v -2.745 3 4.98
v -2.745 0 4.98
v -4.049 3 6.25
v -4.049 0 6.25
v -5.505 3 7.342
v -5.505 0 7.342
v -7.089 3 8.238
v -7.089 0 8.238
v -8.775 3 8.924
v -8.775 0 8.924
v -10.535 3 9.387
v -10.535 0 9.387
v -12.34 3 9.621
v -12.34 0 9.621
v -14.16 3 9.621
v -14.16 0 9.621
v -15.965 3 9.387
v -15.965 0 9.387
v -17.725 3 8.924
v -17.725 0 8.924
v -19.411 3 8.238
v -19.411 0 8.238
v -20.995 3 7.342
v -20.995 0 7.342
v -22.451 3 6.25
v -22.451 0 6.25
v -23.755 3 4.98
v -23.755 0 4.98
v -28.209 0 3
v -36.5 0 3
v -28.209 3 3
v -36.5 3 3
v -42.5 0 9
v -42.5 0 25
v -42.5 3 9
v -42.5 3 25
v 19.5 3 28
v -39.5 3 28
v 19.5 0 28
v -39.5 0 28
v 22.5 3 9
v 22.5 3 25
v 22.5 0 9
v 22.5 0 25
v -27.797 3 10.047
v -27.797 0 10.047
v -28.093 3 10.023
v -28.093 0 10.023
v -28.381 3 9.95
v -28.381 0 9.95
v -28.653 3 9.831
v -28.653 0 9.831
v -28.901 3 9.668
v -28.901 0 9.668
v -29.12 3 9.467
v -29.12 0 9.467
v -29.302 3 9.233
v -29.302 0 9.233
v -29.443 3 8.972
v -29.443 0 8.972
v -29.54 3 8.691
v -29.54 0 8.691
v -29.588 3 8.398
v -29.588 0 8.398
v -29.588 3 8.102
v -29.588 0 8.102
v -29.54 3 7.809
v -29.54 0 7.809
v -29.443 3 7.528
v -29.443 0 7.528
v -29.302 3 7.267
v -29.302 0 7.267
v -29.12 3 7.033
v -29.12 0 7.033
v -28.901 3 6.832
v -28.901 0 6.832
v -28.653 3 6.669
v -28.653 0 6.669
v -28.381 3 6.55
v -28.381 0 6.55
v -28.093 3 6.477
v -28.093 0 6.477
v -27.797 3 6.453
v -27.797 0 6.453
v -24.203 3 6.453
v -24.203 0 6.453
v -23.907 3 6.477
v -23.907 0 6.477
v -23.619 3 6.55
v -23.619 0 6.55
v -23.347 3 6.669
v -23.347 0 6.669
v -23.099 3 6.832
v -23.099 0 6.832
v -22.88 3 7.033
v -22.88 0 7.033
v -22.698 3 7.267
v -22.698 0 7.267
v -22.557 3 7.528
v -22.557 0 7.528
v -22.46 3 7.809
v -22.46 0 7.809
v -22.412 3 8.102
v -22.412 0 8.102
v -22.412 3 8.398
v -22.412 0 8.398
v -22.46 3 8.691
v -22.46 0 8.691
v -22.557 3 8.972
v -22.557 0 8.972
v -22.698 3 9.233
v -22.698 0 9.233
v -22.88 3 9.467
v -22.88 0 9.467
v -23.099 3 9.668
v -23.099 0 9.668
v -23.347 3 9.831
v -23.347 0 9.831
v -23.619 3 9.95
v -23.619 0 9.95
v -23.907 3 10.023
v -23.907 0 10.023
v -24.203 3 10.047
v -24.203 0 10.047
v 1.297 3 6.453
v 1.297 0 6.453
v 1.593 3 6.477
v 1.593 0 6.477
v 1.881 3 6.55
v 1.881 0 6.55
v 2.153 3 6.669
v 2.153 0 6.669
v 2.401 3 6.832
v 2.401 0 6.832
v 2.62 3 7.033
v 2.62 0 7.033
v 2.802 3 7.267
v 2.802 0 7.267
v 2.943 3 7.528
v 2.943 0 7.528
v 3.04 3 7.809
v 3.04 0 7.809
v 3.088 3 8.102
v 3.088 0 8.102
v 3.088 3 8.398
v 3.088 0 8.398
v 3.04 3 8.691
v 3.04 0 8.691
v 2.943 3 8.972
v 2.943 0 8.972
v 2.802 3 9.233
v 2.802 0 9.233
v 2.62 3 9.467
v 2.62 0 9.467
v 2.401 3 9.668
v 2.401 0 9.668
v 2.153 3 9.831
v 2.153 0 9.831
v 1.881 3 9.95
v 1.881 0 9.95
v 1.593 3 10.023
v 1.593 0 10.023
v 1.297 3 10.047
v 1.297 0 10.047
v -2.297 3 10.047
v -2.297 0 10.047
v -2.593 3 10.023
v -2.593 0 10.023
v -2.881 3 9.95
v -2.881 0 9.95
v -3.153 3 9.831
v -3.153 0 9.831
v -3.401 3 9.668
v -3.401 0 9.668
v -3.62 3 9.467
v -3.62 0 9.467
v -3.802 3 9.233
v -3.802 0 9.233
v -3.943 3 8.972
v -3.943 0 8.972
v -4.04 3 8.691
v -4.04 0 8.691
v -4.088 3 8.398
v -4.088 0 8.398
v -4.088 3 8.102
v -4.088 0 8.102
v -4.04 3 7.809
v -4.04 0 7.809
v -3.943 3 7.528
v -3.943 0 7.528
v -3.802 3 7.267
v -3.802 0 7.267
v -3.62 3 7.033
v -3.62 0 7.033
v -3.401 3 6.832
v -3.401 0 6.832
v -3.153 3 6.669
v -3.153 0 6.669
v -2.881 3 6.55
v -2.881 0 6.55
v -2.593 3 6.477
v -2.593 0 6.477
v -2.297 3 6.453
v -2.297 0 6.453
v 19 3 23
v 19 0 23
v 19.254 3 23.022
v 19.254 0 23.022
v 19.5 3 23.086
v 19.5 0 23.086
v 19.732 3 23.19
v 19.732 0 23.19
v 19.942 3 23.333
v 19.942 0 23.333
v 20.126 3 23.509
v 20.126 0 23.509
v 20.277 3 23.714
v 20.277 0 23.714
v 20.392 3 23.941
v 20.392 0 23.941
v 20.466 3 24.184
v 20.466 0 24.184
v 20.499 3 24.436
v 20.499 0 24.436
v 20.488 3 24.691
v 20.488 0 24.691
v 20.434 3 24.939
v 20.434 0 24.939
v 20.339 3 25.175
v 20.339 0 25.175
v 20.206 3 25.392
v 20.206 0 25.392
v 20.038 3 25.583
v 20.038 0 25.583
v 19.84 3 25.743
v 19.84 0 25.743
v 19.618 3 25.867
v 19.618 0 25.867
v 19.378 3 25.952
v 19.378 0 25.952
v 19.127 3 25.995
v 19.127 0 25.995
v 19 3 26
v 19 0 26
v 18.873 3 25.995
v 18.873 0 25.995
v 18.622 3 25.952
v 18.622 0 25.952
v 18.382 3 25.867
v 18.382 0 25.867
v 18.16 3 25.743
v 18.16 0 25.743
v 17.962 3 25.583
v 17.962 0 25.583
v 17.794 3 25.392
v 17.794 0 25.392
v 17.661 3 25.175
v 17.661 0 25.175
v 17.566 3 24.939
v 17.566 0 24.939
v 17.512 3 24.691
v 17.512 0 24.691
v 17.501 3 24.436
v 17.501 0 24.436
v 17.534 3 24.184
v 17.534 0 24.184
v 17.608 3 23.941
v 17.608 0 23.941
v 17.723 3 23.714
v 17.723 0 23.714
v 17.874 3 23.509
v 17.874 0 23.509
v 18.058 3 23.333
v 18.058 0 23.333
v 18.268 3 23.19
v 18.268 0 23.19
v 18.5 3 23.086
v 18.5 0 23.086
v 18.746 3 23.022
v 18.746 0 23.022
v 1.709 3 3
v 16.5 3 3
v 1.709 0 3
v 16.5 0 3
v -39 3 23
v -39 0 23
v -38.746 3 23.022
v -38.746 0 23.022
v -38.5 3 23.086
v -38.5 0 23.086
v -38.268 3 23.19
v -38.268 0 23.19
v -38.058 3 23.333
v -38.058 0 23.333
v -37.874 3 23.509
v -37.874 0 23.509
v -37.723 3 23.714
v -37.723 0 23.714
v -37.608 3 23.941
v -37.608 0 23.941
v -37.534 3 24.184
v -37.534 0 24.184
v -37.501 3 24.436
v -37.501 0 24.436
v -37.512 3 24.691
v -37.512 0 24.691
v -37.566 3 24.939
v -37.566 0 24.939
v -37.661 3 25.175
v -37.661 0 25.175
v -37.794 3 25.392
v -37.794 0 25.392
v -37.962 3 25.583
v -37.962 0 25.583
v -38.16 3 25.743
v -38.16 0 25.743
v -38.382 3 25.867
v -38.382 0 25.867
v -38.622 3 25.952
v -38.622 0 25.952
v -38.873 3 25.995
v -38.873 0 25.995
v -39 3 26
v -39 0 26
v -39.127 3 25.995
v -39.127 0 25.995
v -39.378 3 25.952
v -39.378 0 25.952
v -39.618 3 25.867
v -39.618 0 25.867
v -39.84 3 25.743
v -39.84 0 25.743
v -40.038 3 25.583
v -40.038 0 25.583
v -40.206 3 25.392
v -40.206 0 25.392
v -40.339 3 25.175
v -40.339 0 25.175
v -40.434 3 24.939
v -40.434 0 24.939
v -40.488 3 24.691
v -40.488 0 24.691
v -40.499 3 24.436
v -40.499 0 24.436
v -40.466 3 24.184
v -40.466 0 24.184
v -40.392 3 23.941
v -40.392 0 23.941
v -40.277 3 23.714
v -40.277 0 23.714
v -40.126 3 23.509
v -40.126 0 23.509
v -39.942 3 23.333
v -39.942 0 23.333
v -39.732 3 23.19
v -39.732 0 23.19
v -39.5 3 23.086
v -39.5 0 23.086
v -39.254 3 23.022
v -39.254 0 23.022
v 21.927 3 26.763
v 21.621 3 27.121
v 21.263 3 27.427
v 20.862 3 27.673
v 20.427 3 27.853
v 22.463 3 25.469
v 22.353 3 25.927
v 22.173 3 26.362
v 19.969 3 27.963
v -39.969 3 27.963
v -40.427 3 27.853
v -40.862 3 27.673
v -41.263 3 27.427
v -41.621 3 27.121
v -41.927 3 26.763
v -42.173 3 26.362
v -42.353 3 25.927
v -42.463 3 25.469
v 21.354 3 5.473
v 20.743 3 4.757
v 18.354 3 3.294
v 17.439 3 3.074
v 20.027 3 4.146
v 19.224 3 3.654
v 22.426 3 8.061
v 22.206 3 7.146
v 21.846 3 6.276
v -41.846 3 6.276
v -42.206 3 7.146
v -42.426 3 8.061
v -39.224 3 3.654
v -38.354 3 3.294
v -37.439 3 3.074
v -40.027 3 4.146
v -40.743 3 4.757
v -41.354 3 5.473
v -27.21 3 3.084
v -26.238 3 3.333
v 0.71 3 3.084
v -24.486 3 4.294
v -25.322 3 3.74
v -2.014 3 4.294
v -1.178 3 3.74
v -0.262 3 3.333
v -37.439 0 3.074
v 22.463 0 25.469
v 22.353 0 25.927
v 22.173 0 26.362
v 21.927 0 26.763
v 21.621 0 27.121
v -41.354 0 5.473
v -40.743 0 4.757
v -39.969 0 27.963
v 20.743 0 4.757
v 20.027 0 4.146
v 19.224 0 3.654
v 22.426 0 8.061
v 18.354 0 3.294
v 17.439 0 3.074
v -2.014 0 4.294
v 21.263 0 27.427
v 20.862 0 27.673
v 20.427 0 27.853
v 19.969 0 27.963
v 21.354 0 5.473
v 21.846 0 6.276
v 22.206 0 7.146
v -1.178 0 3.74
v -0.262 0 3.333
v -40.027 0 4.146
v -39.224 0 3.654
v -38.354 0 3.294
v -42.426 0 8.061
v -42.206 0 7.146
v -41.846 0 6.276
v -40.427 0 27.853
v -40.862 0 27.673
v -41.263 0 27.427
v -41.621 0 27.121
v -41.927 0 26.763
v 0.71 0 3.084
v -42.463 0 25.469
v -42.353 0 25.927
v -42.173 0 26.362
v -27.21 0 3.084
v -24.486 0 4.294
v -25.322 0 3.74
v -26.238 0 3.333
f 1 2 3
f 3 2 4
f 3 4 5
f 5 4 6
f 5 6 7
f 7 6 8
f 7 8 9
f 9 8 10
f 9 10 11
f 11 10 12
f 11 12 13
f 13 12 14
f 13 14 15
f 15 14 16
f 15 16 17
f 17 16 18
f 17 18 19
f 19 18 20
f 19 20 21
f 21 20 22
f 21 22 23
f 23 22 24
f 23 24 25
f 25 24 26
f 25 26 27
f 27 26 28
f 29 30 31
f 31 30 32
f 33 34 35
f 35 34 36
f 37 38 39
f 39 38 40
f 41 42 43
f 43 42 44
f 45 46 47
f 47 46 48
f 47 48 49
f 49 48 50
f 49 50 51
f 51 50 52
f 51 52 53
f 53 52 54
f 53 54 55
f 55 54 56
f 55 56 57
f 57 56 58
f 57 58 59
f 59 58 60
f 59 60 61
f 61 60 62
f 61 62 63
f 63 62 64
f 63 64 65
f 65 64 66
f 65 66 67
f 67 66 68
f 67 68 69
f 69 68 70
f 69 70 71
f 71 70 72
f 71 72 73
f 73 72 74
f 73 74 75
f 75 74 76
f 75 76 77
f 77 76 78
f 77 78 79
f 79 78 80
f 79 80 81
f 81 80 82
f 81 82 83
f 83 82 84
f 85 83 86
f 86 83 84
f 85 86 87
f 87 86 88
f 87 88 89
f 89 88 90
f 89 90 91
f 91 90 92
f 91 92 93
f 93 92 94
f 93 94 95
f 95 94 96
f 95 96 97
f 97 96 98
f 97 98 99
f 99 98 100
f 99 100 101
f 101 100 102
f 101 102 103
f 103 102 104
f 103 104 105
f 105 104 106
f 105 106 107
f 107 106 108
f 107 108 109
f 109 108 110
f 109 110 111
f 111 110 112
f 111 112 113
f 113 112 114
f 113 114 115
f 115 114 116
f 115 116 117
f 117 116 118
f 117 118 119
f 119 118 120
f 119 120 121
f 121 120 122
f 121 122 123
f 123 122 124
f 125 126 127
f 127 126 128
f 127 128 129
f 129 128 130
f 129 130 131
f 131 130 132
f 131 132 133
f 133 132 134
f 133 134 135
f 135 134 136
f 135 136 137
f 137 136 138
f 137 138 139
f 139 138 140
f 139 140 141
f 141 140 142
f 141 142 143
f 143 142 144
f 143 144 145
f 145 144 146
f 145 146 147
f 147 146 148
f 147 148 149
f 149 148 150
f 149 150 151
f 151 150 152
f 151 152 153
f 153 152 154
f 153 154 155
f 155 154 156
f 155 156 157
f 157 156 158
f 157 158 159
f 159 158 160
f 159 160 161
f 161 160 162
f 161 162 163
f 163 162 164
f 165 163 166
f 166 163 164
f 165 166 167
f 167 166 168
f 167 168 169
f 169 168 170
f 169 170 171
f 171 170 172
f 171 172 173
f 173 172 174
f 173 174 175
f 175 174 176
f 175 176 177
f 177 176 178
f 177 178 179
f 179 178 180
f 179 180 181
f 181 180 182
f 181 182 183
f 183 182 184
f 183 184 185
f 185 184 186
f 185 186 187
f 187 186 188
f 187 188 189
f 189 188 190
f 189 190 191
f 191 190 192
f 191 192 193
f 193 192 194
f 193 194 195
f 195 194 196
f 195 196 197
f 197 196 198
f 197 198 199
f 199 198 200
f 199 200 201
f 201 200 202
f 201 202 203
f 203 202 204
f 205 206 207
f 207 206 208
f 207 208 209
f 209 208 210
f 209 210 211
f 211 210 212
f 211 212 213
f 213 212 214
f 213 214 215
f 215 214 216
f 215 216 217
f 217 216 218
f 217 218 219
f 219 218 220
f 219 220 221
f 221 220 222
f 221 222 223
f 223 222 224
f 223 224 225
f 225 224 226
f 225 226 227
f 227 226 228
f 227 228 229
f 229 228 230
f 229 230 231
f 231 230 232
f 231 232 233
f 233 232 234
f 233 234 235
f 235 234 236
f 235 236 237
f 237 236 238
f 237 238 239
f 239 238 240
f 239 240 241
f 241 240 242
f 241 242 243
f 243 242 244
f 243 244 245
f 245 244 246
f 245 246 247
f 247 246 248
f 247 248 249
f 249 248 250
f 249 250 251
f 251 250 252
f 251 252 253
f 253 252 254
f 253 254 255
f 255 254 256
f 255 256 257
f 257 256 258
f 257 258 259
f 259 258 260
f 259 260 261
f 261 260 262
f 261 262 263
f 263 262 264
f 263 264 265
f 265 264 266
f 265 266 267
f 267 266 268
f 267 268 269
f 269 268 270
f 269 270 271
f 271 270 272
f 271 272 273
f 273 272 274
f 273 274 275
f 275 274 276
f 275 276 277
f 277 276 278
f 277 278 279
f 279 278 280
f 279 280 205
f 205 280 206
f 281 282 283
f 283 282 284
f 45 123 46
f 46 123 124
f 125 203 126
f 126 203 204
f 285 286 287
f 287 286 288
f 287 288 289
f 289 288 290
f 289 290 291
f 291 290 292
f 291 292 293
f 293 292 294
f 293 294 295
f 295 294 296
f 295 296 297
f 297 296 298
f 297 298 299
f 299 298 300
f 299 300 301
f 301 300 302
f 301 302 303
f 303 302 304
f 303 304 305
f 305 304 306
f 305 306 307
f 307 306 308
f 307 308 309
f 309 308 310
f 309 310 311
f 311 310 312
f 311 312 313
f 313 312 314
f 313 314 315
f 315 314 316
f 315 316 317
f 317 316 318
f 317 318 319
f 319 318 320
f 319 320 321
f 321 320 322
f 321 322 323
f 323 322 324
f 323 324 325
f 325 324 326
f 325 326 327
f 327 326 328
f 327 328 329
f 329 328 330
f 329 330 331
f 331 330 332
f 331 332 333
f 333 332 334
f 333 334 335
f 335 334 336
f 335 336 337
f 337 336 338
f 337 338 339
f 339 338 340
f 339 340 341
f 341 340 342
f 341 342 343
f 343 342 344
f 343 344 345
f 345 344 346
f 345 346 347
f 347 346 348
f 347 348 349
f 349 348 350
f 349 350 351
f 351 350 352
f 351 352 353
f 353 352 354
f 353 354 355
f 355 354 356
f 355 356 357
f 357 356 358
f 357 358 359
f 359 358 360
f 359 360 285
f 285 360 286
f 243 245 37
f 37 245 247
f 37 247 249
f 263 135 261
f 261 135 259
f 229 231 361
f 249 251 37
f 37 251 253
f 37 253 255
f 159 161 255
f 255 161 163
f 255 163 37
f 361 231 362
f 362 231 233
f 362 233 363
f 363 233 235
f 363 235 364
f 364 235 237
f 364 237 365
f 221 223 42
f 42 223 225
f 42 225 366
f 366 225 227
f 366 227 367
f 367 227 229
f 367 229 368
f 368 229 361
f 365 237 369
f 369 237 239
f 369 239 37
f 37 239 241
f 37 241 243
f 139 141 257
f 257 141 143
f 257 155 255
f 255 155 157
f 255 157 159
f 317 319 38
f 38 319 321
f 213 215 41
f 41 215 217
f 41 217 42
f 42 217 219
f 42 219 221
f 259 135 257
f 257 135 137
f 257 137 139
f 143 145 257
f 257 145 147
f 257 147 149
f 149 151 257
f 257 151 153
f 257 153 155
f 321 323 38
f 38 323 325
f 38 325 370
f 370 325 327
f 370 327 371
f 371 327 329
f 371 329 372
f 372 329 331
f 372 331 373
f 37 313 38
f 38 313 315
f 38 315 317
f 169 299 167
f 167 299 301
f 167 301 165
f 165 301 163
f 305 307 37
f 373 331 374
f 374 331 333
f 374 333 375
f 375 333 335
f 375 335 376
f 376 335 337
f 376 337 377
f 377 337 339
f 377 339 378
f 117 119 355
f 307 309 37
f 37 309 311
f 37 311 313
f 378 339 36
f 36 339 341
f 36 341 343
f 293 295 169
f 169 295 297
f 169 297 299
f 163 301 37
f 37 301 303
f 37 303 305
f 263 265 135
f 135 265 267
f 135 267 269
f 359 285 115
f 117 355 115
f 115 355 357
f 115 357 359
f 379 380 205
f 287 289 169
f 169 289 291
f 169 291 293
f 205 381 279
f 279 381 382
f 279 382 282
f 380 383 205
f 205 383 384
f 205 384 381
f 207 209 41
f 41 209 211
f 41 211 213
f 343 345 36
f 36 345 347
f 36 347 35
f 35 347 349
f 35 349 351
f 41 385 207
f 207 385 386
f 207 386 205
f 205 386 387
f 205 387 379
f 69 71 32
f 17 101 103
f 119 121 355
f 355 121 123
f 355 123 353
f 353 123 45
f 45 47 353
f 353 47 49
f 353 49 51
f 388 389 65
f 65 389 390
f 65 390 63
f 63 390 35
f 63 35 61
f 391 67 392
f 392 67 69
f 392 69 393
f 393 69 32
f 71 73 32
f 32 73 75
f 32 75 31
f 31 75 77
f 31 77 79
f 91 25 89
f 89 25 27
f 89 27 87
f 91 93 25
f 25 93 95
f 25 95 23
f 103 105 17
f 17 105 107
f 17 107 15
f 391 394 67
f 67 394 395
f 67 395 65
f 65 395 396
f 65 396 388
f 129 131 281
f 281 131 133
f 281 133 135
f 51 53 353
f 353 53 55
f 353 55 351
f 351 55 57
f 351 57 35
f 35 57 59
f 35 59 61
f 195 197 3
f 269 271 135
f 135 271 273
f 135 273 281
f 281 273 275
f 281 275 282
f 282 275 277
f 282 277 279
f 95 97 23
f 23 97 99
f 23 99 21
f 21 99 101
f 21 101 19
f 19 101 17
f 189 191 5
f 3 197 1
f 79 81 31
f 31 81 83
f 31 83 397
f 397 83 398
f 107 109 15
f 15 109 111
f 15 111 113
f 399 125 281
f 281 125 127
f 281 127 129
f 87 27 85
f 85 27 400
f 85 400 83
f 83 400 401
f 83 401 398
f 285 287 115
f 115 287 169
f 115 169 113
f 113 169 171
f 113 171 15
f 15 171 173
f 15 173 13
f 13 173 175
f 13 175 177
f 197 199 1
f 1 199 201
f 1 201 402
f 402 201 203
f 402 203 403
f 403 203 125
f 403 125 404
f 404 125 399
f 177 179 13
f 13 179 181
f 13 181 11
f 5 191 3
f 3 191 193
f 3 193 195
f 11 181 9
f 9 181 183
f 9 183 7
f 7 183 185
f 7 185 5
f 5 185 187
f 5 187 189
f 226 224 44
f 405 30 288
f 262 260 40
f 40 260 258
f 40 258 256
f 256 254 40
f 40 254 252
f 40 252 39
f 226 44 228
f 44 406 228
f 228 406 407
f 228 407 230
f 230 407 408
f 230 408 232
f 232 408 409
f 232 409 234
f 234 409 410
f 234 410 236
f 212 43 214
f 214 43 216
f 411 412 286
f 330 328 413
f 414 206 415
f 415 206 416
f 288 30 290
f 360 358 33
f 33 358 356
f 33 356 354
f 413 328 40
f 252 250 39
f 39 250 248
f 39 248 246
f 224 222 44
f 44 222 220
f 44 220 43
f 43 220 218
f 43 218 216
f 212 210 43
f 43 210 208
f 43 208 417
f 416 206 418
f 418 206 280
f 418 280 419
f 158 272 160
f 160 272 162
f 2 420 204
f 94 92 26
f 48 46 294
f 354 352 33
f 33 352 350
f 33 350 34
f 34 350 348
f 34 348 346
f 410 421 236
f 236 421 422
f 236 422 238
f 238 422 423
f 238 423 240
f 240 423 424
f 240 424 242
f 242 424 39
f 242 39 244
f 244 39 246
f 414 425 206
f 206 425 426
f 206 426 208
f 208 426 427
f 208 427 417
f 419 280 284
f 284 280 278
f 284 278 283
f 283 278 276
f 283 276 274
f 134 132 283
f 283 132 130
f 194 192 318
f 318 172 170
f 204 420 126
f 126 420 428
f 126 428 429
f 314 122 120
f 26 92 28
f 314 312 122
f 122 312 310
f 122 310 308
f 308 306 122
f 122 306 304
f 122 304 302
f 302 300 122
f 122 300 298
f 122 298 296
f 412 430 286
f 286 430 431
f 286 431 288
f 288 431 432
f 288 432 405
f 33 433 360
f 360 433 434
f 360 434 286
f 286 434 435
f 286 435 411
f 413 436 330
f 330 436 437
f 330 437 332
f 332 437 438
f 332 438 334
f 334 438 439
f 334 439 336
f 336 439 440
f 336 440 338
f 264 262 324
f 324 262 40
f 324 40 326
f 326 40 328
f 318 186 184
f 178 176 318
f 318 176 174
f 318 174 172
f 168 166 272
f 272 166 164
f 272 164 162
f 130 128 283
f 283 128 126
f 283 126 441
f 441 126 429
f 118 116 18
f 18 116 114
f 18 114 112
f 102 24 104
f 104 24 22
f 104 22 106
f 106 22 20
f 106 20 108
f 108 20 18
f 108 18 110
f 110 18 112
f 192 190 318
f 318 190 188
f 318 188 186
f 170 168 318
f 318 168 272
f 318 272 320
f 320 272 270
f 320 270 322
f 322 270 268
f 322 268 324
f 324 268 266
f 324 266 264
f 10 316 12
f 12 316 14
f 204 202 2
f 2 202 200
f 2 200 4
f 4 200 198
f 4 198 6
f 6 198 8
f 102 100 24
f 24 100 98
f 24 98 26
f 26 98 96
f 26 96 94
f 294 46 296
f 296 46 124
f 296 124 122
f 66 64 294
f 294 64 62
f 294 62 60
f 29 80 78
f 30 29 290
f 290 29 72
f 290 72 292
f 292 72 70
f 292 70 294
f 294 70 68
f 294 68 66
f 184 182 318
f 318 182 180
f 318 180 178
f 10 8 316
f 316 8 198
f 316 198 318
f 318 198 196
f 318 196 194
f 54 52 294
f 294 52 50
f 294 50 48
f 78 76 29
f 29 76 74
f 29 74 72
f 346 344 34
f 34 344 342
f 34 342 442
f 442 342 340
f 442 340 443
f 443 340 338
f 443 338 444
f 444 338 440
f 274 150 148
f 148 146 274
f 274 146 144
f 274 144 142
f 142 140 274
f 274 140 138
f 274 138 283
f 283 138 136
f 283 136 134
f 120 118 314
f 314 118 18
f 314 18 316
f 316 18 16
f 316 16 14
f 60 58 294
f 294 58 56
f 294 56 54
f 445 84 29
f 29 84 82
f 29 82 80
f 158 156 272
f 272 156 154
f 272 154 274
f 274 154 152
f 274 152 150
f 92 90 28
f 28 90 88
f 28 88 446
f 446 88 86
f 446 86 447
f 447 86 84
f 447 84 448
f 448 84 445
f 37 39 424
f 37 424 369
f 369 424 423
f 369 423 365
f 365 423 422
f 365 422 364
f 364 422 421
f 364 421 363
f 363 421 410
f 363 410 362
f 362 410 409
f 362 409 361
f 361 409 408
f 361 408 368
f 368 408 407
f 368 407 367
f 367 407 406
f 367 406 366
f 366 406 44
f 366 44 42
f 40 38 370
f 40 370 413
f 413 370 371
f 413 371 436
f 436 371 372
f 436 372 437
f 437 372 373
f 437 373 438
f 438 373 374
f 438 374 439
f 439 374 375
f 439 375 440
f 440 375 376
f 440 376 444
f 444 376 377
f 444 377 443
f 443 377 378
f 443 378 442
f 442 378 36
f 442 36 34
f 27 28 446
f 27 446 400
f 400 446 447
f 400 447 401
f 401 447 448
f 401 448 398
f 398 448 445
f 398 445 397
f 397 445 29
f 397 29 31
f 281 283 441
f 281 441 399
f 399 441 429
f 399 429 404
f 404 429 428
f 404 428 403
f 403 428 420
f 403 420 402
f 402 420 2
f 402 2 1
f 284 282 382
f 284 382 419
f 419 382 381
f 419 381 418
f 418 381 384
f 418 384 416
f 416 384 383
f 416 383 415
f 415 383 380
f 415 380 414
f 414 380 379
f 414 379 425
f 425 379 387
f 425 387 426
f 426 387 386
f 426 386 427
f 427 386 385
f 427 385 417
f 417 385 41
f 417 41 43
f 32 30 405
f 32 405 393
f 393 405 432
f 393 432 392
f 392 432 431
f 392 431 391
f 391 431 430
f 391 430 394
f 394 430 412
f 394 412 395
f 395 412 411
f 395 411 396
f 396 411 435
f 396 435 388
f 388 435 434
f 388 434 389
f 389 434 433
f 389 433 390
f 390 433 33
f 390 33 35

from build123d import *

# Parameters (mm, degrees)
SKETCH1_R           = 1.5
BOSS_EXTRUDE1_DEPTH = 3
FILLET1_R           = 3
FILLET2_R           = 6


with BuildPart() as part:
    # Sketch1 → Boss-Extrude1 (new body)
    with BuildSketch(Plane(origin=(0, 0, 0), x_dir=(1, 0, 0), z_dir=(0, 1, 0))):
        with BuildLine():
            Line((-42.5, -3), (-42.5, -28))
            Line((-42.5, -28), (22.5, -28))
            Line((22.5, -28), (22.5, -3))
            Line((22.5, -3), (-1.251145888, -3))
            ThreePointArc((-1.251145888, -3), (-13.25, -9.65), (-25.248854112, -3))
            Line((-25.248854112, -3), (-42.5, -3))
        make_face()
        with Locations((-39, -24.5)):
            Circle(SKETCH1_R, mode=Mode.SUBTRACT)
        with BuildLine():
            ThreePointArc((-24.202730122, -6.452730122), (-22.405460244, -8.25), (-24.202730122, -10.047269878))
            Line((-24.202730122, -10.047269878), (-27.797269878, -10.047269878))
            ThreePointArc((-27.797269878, -10.047269878), (-29.594539756, -8.25), (-27.797269878, -6.452730122))
            Line((-27.797269878, -6.452730122), (-24.202730122, -6.452730122))
        make_face(mode=Mode.SUBTRACT)
        with Locations((19, -24.5)):
            Circle(SKETCH1_R, mode=Mode.SUBTRACT)
        with BuildLine():
            ThreePointArc((-2.297269878, -10.047269878), (-4.094539756, -8.25), (-2.297269878, -6.452730122))
            Line((-2.297269878, -6.452730122), (1.297269878, -6.452730122))
            ThreePointArc((1.297269878, -6.452730122), (3.094539756, -8.25), (1.297269878, -10.047269878))
            Line((1.297269878, -10.047269878), (-2.297269878, -10.047269878))
        make_face(mode=Mode.SUBTRACT)
    extrude(amount=BOSS_EXTRUDE1_DEPTH)

    # Fillet1
    fillet1_edges = [part.edges().sort_by_distance(p)[0] for p in [
        (22.5, 1.5, 28),
        (-42.5, 1.5, 28),
    ]]
    fillet(fillet1_edges, radius=FILLET1_R)

    # Fillet2
    fillet2_edges = [part.edges().sort_by_distance(p)[0] for p in [
        (-1.251145888, 1.5, 3),
        (22.5, 1.5, 3),
        (-42.5, 1.5, 3),
        (-25.248854112, 1.5, 3),
    ]]
    fillet(fillet2_edges, radius=FILLET2_R)


solid = part.part
